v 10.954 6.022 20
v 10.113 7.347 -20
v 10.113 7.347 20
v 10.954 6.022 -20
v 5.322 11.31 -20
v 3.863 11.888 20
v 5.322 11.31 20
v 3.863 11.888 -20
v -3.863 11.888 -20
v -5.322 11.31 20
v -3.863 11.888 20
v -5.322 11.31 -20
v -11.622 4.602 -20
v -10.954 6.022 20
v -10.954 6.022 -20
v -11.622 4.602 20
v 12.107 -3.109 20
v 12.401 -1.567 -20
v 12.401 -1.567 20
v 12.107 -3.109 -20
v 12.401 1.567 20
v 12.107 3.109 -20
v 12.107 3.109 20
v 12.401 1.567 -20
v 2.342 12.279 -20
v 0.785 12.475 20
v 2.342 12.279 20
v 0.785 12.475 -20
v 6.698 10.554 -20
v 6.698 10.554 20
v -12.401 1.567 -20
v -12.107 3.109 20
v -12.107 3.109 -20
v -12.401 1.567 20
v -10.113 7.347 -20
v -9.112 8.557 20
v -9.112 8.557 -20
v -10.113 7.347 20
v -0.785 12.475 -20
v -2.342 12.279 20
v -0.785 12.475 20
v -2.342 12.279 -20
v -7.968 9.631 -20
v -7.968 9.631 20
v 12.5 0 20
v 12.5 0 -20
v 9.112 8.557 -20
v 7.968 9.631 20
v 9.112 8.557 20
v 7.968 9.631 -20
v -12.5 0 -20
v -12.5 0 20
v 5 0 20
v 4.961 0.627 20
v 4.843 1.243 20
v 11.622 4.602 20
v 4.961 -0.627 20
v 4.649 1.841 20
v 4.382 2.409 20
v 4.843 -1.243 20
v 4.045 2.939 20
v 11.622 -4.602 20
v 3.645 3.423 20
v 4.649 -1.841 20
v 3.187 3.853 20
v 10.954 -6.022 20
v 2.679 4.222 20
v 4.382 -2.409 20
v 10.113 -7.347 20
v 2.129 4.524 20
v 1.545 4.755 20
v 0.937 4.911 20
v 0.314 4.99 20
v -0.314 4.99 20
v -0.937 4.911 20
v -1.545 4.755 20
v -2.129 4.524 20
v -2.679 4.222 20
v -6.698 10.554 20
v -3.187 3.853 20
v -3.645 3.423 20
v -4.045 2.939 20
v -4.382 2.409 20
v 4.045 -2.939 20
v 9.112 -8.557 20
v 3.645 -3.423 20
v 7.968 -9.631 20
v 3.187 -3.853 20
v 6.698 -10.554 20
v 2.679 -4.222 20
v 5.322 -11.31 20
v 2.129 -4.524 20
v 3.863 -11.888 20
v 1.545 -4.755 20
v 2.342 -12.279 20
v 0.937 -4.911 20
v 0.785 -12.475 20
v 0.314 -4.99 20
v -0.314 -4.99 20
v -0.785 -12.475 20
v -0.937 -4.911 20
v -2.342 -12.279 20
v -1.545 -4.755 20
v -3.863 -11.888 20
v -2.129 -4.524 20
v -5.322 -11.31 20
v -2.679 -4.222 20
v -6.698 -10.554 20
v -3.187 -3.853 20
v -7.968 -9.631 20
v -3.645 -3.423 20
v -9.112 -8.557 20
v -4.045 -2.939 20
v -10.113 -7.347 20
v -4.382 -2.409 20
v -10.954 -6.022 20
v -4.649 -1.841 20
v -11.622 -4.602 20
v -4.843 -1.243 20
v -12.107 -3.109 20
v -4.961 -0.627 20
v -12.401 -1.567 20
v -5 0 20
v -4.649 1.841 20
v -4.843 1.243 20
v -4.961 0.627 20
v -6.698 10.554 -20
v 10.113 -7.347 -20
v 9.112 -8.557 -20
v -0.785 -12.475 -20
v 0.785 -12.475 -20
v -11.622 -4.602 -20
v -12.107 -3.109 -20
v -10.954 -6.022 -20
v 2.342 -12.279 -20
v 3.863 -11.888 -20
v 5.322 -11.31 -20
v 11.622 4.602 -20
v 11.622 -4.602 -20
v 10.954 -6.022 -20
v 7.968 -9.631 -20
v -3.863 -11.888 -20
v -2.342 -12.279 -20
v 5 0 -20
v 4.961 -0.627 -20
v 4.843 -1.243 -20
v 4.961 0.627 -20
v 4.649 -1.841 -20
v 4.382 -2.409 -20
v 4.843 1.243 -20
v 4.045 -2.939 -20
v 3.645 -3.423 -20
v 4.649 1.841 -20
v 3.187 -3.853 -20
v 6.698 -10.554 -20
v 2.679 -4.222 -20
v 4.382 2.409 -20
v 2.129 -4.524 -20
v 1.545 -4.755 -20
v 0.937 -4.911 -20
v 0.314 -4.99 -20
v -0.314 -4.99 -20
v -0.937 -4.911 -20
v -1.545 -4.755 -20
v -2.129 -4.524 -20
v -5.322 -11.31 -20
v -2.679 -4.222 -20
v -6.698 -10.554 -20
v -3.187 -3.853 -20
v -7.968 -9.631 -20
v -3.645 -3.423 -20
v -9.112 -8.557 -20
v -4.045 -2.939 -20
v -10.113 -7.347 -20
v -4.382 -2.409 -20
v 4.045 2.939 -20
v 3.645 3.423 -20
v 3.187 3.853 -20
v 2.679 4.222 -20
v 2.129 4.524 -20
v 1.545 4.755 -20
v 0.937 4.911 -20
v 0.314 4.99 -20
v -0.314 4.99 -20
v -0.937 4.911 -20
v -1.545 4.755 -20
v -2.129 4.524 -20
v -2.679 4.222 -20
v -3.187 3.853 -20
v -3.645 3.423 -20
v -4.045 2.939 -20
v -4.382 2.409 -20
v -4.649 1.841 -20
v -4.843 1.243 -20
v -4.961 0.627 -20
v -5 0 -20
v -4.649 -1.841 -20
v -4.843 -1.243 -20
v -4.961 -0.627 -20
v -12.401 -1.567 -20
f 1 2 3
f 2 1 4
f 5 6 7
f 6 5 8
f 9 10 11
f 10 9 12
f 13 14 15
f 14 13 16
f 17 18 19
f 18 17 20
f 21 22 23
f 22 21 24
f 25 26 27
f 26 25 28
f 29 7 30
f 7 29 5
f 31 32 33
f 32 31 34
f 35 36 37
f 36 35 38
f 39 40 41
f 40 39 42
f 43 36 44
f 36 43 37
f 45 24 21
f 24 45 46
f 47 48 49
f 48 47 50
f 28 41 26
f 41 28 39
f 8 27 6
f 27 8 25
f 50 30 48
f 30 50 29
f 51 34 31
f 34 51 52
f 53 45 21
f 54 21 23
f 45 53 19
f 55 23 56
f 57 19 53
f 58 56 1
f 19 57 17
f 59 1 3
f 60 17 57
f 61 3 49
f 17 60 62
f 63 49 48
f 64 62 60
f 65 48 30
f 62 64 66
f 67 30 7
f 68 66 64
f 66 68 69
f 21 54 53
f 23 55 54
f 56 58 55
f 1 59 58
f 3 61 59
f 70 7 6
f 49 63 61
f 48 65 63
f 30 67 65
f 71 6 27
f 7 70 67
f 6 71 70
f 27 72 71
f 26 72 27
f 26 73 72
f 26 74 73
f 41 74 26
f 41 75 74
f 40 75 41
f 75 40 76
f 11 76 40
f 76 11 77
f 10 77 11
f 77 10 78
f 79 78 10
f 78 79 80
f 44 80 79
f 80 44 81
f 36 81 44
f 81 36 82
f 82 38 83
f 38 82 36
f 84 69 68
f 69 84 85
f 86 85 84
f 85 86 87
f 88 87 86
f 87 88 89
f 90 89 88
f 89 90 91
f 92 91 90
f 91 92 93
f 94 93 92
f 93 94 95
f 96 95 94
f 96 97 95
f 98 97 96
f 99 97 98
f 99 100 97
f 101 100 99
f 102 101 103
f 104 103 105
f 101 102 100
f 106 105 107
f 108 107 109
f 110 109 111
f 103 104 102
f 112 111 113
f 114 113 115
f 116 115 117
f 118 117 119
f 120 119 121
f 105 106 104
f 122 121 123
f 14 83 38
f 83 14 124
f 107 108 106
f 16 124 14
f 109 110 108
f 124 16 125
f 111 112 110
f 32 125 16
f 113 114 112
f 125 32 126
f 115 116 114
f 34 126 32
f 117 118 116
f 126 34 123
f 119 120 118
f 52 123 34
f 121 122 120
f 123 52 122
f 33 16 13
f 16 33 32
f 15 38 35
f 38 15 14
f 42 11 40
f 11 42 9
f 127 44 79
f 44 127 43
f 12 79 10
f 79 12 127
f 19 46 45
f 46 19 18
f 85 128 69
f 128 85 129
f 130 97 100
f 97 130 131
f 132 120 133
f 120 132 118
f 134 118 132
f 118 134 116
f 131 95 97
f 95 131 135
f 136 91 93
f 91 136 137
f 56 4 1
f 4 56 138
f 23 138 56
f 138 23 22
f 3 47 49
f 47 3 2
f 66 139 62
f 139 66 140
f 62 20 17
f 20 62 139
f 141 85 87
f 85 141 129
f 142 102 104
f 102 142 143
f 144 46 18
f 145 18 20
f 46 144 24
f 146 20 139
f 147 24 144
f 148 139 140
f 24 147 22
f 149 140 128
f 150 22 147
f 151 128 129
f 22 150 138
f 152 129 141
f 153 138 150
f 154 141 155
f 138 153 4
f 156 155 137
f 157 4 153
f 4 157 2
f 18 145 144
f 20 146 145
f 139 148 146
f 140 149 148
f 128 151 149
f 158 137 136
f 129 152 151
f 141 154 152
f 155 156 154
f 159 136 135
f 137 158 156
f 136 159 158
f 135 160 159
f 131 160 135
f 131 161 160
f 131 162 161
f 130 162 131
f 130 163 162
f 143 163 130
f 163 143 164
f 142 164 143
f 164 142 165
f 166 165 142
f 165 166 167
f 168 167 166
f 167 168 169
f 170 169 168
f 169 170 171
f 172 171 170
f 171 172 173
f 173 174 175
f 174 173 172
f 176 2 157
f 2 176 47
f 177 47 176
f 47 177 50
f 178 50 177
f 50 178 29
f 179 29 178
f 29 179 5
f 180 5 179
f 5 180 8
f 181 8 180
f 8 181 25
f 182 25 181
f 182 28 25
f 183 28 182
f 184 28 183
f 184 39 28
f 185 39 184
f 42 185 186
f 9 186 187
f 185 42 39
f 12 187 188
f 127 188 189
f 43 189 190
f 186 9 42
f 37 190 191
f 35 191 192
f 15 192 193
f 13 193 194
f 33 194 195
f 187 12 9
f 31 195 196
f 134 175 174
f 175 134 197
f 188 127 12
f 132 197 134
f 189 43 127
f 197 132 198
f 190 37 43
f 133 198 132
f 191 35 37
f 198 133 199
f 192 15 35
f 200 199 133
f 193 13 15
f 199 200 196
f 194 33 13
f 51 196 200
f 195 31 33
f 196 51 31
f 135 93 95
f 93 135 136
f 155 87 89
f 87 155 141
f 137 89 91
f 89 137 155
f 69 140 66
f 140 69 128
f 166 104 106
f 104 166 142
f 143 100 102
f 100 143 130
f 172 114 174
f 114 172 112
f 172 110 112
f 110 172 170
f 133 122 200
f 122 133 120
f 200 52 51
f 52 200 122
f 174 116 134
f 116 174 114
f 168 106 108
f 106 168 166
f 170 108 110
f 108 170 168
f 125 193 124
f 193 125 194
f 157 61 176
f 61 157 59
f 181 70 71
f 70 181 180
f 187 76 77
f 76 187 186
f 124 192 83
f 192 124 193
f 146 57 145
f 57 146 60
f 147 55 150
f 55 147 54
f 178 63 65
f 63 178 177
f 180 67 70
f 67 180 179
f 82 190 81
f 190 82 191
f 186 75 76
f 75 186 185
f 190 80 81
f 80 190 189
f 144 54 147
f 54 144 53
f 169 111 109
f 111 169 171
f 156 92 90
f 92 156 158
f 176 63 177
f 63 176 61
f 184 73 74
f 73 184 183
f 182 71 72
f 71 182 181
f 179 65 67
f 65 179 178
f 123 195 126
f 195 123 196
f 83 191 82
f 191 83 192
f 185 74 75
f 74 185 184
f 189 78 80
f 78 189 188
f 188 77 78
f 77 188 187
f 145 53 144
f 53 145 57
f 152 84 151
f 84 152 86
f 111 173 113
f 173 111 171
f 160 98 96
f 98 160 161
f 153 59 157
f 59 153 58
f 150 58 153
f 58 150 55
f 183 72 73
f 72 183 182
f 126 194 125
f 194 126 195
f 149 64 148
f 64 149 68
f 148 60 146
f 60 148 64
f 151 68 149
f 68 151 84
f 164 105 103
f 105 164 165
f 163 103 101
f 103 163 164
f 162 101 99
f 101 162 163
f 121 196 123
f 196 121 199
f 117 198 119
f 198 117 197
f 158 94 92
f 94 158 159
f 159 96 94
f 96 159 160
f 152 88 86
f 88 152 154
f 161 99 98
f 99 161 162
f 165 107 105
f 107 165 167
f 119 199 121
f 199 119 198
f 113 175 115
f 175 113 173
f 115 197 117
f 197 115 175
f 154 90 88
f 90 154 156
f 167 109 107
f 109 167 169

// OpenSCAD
$fn = 50;


difference() {
	union() {
		translate(v = [0, 0, -20.0000000000]) {
			cylinder(h = 40, r = 12.5000000000);
		}
	}
	union() {
		translate(v = [0, 0, -100.0000000000]) {
			cylinder(h = 200, r = 5);
		}
	}
}
